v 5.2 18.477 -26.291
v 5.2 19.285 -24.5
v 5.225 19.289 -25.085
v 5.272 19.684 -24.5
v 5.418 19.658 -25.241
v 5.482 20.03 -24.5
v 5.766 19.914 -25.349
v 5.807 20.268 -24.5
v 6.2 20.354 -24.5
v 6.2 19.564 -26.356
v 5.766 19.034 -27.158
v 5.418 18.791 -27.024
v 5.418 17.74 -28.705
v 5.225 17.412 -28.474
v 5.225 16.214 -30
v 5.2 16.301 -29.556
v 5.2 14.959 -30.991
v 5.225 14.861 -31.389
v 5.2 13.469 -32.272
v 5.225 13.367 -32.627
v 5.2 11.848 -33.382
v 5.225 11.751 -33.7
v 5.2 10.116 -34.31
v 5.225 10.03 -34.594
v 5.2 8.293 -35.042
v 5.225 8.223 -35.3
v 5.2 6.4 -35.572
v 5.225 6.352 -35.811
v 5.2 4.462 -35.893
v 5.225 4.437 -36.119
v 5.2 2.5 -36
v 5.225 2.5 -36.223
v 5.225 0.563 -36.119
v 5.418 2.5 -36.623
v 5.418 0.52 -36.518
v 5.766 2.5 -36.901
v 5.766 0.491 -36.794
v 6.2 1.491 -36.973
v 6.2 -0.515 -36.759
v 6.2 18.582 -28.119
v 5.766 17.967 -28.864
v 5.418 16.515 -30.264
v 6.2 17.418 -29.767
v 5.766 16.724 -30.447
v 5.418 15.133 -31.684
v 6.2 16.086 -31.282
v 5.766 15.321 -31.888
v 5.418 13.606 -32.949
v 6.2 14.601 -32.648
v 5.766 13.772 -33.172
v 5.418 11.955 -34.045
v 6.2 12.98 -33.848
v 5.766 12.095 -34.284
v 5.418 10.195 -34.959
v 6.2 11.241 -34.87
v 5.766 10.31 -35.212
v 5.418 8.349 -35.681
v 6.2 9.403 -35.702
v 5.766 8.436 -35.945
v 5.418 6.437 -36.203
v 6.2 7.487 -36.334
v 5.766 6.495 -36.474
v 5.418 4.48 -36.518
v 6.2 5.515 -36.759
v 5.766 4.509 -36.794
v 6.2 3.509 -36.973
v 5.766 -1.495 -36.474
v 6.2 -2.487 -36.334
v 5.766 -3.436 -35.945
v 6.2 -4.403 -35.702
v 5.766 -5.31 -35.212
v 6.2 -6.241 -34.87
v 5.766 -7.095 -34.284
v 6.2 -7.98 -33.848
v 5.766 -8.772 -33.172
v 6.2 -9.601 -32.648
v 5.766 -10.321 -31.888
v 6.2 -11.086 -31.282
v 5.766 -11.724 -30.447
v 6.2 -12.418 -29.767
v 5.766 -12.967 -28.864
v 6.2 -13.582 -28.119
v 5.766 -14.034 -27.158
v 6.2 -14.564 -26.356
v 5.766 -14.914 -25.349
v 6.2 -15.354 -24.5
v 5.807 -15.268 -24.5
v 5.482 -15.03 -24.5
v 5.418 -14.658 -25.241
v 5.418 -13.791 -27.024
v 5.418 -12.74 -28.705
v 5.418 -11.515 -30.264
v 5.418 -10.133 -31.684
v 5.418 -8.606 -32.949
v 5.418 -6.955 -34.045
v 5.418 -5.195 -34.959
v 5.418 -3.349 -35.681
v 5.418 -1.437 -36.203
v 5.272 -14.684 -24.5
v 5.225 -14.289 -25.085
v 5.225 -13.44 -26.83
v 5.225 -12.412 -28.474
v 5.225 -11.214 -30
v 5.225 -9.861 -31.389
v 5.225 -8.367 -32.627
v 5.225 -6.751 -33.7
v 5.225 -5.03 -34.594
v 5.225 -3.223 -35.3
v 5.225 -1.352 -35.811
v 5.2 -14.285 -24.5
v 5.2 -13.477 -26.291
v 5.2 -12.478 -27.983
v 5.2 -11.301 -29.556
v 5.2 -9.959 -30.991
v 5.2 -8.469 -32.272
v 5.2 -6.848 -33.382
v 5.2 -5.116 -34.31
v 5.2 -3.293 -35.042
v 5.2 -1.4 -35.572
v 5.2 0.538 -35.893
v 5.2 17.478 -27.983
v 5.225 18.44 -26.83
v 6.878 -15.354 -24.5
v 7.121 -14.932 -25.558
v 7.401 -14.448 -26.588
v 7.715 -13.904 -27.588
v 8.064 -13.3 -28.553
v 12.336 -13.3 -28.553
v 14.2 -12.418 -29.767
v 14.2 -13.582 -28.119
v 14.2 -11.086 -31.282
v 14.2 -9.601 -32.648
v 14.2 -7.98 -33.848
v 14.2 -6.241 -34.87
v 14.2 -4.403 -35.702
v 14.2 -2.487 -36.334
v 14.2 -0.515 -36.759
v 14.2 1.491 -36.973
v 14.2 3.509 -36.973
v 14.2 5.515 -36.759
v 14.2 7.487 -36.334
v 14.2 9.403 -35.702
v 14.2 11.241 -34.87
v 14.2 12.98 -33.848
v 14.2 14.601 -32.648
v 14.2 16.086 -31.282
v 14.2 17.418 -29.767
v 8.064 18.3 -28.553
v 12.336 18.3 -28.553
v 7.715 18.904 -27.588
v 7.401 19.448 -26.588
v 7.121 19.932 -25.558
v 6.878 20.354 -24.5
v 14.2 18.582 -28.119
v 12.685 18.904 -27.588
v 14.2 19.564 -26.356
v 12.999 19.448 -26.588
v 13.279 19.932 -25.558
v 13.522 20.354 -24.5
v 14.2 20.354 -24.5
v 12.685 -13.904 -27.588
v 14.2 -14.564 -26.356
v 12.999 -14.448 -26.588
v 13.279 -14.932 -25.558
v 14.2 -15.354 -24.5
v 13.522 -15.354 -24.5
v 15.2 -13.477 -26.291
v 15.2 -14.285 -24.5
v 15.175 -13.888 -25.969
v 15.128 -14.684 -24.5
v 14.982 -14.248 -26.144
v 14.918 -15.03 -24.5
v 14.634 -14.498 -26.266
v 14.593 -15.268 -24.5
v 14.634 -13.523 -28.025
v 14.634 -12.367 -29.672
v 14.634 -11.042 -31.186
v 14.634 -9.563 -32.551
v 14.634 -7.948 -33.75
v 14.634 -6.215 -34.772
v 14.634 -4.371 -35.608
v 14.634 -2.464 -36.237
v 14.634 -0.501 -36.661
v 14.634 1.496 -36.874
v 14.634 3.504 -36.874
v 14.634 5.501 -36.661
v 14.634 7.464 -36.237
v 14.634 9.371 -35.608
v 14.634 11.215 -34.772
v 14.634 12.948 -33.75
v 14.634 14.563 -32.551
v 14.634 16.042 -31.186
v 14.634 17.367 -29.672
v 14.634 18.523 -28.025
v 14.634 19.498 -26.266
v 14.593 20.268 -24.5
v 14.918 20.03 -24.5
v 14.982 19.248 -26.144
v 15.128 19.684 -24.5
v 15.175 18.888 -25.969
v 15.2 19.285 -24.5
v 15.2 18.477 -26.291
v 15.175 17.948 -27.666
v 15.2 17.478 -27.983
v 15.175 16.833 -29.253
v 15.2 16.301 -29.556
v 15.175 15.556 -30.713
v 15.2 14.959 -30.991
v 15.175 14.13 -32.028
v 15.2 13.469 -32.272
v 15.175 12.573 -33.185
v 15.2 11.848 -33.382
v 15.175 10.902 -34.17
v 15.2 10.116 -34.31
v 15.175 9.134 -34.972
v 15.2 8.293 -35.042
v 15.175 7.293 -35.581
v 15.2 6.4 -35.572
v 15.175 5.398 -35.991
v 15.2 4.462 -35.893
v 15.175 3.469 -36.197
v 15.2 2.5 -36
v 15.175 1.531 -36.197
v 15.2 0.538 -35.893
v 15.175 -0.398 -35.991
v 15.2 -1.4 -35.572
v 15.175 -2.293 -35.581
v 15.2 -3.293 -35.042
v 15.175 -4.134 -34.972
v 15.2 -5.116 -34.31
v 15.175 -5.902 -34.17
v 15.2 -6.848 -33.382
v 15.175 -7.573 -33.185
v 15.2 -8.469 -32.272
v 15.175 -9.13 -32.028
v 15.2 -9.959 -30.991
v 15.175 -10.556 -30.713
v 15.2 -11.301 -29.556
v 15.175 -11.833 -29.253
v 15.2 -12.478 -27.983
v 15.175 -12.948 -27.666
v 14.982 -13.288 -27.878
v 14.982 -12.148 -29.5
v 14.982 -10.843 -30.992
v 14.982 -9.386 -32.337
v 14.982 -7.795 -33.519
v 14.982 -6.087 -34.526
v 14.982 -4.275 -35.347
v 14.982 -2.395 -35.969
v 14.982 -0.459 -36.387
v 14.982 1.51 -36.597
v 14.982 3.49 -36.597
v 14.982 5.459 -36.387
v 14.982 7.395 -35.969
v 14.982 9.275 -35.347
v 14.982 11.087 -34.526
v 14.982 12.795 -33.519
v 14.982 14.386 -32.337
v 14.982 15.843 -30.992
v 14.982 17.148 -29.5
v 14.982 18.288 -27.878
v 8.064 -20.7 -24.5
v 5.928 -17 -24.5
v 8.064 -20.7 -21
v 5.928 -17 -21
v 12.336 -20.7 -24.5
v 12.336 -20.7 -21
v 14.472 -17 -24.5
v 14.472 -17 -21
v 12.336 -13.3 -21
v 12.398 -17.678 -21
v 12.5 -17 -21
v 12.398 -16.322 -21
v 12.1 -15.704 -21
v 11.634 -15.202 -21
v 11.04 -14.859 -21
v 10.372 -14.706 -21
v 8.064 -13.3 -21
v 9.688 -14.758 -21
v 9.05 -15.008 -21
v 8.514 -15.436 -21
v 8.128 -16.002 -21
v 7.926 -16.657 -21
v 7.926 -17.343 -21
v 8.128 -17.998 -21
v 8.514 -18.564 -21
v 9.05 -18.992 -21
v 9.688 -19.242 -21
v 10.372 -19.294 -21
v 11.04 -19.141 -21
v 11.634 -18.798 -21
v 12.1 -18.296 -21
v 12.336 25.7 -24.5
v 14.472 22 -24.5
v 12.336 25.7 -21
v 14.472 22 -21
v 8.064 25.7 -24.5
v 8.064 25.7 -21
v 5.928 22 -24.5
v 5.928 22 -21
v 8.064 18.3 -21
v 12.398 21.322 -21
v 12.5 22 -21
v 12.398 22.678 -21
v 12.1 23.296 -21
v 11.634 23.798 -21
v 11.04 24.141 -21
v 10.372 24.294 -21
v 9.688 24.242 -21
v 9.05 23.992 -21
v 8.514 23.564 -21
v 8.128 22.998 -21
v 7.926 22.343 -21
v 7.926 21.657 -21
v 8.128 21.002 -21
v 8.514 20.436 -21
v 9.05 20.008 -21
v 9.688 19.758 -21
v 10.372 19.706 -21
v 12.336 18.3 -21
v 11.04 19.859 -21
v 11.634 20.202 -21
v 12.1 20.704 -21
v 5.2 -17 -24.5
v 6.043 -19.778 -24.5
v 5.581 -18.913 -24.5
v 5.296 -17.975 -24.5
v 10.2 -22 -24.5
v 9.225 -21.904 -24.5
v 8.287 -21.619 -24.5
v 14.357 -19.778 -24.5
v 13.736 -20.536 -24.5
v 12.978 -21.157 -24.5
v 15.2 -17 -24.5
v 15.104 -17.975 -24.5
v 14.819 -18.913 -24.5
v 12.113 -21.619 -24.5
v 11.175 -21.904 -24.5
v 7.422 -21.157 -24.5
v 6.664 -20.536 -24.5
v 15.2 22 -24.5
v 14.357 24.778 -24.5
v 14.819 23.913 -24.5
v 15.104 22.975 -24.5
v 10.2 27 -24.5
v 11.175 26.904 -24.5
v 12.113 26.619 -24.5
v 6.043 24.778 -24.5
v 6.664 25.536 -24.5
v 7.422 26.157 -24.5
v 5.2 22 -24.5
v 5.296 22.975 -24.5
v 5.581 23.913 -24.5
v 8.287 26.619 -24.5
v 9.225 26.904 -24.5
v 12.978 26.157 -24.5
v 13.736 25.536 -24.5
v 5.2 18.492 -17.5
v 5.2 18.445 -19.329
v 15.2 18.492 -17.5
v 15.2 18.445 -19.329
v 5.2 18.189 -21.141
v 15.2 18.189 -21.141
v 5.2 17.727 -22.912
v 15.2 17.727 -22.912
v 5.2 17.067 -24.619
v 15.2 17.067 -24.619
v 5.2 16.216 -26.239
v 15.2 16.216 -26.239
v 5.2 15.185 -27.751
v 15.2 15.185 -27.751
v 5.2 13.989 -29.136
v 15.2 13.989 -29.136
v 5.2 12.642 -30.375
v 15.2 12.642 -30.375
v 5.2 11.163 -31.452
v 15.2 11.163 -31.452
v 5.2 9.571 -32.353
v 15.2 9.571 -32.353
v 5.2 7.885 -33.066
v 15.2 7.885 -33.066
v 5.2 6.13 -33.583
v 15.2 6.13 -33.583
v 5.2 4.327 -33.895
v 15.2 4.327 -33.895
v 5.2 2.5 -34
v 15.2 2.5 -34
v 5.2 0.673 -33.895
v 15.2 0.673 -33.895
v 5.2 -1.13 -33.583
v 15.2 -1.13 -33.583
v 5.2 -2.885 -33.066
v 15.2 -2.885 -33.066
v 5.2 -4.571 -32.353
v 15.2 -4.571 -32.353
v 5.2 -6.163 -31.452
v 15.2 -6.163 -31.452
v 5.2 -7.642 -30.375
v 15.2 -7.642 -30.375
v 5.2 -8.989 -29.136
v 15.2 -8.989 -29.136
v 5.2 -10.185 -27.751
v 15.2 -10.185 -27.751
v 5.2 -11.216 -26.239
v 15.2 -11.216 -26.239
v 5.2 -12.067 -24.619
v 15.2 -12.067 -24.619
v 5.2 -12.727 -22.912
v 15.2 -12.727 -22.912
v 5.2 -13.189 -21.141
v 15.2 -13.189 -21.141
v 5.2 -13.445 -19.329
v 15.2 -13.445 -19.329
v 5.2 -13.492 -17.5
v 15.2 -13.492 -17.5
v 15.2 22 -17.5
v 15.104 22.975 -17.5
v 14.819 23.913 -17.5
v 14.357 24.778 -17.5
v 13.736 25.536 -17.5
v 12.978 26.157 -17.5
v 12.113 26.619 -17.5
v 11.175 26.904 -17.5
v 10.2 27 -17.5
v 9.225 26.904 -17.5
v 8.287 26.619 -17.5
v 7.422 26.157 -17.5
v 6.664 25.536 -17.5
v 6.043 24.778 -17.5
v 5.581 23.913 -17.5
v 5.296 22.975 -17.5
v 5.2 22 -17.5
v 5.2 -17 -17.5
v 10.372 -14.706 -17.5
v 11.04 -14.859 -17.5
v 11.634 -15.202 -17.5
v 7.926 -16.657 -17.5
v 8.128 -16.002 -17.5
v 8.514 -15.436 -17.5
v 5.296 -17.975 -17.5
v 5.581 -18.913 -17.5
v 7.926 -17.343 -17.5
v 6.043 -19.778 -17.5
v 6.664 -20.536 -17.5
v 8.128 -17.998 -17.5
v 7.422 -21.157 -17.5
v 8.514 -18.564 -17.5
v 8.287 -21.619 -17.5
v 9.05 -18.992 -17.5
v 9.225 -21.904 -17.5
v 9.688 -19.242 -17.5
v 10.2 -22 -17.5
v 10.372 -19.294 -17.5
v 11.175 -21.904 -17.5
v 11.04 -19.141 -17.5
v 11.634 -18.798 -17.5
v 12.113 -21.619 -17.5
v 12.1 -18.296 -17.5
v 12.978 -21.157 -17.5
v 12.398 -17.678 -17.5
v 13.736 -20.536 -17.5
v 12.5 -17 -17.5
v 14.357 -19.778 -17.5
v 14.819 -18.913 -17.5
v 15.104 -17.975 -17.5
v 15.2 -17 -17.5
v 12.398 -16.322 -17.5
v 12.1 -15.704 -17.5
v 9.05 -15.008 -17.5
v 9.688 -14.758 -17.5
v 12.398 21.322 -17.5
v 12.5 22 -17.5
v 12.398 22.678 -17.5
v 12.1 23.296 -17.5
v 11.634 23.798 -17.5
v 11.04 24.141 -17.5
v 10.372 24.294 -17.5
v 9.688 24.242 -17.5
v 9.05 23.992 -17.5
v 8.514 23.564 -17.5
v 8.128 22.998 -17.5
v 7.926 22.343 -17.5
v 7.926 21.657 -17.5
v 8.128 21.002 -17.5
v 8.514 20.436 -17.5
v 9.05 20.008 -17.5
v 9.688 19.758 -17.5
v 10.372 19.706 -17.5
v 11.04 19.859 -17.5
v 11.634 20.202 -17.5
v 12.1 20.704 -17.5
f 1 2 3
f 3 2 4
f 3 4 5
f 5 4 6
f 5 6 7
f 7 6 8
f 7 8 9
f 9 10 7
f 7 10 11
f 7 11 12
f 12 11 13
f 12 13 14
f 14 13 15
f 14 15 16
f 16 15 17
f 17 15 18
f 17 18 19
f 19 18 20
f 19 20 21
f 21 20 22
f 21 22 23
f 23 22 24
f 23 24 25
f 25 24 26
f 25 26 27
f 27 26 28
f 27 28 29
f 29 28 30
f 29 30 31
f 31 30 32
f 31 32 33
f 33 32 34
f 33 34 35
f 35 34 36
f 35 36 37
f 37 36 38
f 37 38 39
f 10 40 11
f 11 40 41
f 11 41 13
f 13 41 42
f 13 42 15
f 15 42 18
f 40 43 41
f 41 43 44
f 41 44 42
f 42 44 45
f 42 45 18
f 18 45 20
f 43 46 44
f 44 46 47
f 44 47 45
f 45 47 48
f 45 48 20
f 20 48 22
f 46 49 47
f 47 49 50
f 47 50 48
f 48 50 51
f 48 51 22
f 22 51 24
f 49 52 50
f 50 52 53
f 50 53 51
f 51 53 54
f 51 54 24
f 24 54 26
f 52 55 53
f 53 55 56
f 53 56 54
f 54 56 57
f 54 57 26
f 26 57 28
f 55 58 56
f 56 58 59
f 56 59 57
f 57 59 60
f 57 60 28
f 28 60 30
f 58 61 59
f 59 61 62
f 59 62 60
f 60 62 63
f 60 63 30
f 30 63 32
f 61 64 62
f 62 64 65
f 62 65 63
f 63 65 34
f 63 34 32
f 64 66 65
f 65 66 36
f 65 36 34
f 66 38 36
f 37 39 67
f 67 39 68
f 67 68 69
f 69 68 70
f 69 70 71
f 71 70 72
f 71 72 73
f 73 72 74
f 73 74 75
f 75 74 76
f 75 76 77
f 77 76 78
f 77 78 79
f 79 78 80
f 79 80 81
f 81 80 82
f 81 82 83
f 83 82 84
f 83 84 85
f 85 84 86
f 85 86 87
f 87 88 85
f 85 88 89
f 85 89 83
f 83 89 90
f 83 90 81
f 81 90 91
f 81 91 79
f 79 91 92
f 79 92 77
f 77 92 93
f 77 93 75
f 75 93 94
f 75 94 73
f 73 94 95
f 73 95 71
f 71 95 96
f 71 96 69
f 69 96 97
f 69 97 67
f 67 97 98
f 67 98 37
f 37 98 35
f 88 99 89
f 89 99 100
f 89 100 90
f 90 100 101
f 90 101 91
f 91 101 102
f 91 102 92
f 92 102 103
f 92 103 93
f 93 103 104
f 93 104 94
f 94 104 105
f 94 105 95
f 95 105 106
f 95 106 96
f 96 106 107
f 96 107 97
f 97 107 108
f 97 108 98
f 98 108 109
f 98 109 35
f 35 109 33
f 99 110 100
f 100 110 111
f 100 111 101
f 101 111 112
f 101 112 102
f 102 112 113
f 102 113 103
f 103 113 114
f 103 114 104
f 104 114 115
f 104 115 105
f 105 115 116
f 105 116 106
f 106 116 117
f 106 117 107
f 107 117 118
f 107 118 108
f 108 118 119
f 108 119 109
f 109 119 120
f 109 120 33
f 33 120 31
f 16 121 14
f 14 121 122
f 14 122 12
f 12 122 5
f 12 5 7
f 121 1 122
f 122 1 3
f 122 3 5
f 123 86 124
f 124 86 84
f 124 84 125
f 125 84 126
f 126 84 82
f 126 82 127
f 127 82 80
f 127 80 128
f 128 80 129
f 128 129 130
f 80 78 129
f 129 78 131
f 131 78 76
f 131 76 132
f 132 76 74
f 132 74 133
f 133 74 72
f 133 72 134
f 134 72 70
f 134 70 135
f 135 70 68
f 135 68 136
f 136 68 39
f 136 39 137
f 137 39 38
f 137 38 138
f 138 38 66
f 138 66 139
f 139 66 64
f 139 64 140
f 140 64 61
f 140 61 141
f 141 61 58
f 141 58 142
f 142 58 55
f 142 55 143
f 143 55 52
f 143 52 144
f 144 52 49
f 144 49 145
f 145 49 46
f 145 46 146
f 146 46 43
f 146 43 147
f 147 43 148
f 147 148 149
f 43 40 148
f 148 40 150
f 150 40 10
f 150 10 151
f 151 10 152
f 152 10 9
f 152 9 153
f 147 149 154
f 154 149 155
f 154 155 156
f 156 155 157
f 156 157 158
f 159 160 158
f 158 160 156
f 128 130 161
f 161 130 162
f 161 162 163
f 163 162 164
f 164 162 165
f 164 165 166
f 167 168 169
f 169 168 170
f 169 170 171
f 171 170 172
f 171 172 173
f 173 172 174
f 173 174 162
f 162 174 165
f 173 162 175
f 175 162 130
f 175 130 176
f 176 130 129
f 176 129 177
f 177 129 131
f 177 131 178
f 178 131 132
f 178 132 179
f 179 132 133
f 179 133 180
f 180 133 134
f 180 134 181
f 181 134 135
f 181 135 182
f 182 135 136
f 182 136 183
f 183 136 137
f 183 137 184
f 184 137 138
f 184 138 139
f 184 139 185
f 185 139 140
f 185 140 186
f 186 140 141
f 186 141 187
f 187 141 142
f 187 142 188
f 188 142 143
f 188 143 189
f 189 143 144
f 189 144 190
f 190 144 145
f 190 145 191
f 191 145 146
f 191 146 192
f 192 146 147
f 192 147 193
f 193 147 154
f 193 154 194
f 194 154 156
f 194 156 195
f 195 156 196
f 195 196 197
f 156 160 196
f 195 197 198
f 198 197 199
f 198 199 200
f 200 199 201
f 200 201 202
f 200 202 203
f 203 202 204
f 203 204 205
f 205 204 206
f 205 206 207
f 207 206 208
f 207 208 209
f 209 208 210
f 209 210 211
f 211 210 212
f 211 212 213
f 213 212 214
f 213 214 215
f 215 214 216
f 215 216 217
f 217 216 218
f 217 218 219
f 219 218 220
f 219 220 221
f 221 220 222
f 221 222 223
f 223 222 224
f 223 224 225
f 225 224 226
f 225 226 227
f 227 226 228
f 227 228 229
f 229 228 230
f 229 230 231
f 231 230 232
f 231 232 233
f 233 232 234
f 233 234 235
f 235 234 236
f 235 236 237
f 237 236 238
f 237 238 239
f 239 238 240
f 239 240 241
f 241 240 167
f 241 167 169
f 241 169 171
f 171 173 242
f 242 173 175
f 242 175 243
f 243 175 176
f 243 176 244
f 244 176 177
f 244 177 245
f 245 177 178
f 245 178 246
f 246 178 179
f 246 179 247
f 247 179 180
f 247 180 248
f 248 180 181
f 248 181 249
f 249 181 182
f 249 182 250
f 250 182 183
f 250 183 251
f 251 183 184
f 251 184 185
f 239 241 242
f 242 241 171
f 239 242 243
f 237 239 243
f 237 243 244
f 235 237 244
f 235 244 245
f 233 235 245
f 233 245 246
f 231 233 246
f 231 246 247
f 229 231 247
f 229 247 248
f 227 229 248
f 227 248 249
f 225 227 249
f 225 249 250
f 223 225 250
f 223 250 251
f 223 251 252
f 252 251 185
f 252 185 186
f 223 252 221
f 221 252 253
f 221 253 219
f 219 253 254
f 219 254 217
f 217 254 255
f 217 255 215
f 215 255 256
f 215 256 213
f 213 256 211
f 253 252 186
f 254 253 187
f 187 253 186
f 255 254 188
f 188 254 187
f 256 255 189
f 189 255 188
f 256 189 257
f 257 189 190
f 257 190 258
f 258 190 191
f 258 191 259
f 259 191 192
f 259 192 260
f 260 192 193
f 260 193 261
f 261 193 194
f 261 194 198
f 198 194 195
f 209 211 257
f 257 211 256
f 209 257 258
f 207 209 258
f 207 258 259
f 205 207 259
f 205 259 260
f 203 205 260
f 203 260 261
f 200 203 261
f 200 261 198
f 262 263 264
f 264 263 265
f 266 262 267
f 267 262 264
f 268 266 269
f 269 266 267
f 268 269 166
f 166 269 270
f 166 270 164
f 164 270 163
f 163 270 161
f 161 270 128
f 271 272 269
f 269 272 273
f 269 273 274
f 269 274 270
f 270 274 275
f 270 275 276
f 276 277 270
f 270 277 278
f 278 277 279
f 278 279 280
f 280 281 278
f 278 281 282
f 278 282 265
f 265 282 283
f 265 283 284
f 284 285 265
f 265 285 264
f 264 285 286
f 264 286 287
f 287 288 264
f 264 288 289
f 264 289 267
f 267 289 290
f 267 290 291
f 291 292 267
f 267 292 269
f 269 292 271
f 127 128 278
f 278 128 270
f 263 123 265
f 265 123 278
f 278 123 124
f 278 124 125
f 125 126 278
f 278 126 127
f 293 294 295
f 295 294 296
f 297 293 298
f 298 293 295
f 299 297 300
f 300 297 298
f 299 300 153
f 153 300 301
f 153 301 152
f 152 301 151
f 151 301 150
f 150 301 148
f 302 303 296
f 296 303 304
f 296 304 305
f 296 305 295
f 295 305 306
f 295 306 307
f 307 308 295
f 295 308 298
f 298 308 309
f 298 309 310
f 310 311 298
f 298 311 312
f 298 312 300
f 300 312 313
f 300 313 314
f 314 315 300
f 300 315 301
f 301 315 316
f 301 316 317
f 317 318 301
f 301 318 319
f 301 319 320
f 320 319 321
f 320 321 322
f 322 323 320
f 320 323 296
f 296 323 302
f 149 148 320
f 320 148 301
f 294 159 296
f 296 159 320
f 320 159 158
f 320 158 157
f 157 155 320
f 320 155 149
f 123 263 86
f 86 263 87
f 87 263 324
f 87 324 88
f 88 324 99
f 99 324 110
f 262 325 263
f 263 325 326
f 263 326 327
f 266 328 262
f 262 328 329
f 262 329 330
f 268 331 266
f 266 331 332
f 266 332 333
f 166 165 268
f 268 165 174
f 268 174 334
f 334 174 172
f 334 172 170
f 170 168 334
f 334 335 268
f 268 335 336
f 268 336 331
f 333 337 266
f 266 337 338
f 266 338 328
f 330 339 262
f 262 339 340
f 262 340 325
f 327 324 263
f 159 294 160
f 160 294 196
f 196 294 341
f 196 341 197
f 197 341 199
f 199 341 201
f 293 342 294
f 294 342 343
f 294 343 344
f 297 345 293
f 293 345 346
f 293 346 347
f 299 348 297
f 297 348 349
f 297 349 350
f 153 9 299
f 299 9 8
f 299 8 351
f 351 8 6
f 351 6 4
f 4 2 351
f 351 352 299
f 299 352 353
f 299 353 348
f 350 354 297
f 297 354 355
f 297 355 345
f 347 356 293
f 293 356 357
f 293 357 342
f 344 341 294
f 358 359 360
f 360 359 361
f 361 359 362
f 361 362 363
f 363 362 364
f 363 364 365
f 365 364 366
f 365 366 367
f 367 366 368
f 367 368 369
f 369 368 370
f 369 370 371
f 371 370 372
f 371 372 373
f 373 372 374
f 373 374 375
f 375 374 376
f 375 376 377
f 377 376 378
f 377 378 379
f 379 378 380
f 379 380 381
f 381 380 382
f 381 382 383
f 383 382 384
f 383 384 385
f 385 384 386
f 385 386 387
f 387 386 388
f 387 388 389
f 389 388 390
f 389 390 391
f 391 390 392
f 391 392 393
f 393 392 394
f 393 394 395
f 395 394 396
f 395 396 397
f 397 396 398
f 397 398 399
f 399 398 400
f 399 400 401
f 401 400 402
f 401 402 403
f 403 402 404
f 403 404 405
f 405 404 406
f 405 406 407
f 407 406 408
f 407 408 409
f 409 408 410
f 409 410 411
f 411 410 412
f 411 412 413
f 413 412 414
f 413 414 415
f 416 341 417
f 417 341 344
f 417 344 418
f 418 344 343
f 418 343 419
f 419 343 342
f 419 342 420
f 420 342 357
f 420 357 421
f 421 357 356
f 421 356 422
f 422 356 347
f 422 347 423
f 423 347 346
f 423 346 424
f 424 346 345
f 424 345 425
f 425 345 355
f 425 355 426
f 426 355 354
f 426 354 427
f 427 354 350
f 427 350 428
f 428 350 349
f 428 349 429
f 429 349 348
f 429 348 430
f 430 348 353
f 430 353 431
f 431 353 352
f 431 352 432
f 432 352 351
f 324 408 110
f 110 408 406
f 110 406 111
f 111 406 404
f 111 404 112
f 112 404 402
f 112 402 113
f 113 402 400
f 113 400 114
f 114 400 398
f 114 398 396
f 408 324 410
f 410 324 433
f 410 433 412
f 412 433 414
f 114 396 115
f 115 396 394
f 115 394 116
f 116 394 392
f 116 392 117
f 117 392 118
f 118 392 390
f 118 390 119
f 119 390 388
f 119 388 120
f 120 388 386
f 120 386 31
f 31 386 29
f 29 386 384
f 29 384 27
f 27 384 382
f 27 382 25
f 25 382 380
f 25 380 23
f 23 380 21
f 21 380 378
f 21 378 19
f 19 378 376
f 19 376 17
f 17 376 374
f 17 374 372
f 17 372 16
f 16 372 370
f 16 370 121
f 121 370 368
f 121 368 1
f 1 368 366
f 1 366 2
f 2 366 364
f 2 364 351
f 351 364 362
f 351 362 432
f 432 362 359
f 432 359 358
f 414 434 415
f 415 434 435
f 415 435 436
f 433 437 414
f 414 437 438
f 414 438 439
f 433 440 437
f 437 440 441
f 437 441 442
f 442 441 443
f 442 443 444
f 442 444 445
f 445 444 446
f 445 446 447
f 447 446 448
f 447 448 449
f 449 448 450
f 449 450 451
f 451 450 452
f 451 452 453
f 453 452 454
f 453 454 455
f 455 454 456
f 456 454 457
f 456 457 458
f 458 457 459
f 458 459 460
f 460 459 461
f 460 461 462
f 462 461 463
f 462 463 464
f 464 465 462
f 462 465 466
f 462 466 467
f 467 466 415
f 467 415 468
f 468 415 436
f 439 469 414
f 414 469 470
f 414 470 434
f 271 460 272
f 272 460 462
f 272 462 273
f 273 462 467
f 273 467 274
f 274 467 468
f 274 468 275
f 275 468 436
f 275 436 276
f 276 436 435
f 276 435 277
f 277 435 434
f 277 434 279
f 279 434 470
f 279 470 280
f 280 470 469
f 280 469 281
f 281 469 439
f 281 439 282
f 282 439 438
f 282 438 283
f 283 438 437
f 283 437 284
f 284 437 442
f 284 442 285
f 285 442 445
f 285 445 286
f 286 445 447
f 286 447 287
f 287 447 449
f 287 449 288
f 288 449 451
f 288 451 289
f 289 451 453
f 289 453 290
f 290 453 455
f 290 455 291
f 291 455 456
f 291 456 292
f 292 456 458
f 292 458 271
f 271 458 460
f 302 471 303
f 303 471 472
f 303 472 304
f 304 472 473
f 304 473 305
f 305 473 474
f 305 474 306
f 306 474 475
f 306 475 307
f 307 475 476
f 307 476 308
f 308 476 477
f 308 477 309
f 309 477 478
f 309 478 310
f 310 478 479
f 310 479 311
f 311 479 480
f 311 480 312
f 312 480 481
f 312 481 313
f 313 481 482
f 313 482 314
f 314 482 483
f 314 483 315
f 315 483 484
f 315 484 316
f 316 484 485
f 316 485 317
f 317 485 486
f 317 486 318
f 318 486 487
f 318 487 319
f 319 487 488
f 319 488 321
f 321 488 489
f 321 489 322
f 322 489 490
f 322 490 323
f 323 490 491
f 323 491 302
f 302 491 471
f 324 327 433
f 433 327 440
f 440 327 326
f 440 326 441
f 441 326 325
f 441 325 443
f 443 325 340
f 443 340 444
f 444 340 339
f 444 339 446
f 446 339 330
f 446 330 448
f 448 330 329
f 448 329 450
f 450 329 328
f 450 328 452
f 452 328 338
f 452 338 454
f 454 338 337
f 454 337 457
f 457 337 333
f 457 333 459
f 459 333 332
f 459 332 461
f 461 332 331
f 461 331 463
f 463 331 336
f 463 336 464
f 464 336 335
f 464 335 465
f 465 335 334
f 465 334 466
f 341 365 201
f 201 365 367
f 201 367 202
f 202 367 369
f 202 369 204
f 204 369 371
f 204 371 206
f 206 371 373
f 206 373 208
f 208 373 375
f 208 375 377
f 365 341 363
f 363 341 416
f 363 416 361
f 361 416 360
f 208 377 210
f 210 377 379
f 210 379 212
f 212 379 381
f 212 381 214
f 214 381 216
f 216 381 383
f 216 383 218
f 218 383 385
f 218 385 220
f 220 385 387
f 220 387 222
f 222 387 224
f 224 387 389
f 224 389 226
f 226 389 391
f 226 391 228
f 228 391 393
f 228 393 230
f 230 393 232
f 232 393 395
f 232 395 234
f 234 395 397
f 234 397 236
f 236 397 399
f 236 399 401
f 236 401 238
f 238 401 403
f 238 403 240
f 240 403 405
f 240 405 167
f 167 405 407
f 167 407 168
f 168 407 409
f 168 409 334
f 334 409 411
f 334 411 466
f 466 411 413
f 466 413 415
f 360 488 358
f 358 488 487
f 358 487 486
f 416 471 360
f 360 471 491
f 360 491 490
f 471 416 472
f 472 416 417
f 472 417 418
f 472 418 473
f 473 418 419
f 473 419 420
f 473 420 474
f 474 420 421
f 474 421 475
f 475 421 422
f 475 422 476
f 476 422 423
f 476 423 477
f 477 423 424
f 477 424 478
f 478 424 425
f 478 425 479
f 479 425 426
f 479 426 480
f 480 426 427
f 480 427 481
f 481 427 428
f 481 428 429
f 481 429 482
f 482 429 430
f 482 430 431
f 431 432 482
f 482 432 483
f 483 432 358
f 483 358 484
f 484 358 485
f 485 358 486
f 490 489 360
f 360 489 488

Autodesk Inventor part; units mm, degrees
ref_plane "YZ Plane" through (0, 0, 0) normal (1, 0, 0) x (0, 1, 0)
ref_plane "XZ Plane" through (0, 0, 0) normal (0, 1, 0) x (-1, 0, 0)
ref_plane "Arbeitsebene1" through (0, 0, -17.5) normal (0, 0, 1) x (1, 0, 0)
sketch "Skizze1" plane through (0, 0, -17.5) normal (0, 0, 1) x (1, 0, 0)
  arc A0 (5.2, -17) -> (15.2, -17) centre (10.2, -17) ccw
  circle A1 centre (10.2, -17) radius 2.3
  circle A2 centre (10.2, 22) radius 2.3
  arc A3 (15.2, 22) -> (5.2, 22) centre (10.2, 22) ccw
  line L0 (15.2, 22) -> (15.2, -17)
  line L1 (5.2, -17) -> (5.2, 22)
  point P0 (0, 0)
  dimension "d17" = 39
  dimension "d19" = 5
  dimension "d20" = 5
  dimension "d21" = 4.6
  dimension "d22" = 4.6
  dimension "d23" = 5.2
  dimension "d24" = 15.2
  dimension "d25" = 17
extrude "Extrusion1" add sketch "Skizze1" against normal blind 20
sketch "Skizze2" plane through (15.2, -17, -17.5) normal (1, 0, 0) x (0, 0, -1)
  circle A0 centre (0.5, 19.5) radius 16
  circle A1 centre (0.5, 19.5) radius 19
  line L0 (0, 44) -> (20, 44) projected
  line L1 (7, 44) -> (7, 37.3536)
  line L2 (7, 44) -> (4.49, 46.4189)
  line L3 (4.49, 46.4189) -> (-2.5421, 44.7897)
  line L4 (-2.5421, 44.7897) -> (-3.0105, 35.1101)
  line L5 (-3.09, 3.908) -> (-10.3297, -18.857)
  line L6 (-10.3297, -18.857) -> (9.5227, -24.4173)
  line L7 (9.5227, -24.4173) -> (7, -5)
  line L8 (0, -5) -> (20, -5) projected
  line L9 (7, -5) -> (7, 1.6464)
  line L10 (0, 0) -> (0, -5) projected
  line L11 (36.0228, 70.8555) -> (-22.3921, 70.8555)
  line L12 (-22.3921, 70.8555) -> (-22.3921, -28.3632)
  line L13 (-22.3921, -28.3632) -> (36.0228, -28.3632)
  line L14 (36.0228, -28.3632) -> (36.0228, 70.8555)
  point P0 (-17.5, 17)
  point P1 (-4.0018, 1.041)
  point P2 (-2.861, 38.2004)
  dimension "d5" = 3
  dimension "d6" = 7
  dimension "d26" = 49
  dimension "d27" = 24.5
  dimension "d28" = 32
  dimension "d29" = 18
extrude "Extrusion2" cut sketch "Skizze2" against normal blind 10 contours A0 | L14 L13 L12 L11
sketch "Skizze3" plane through (15.2, -17, -24.5) normal (0, 0, -1) x (-1, 0, 0)
  circle A0 centre (5, 39) radius 2.3 projected
  line L0 (2.8638, 35.3) -> (0.7276, 39)
  line L1 (0.7276, 39) -> (2.8638, 42.7)
  line L2 (2.8638, 42.7) -> (7.1362, 42.7)
  line L3 (7.1362, 42.7) -> (9.2724, 39)
  line L4 (9.2724, 39) -> (7.1362, 35.3)
  line L5 (7.1362, 35.3) -> (2.8638, 35.3)
  line L6 (0.7276, 0) -> (2.8638, 3.7)
  line L7 (2.8638, 3.7) -> (7.1362, 3.7)
  line L8 (7.1362, 3.7) -> (9.2724, 0)
  line L9 (9.2724, 0) -> (7.1362, -3.7)
  line L10 (7.1362, -3.7) -> (2.8638, -3.7)
  line L11 (2.8638, -3.7) -> (0.7276, 0)
  point P0 (15.2, 17)
  point P1 (5, 0)
  point P2 (5, 0)
  point P3 (5.6446, 34.7922)
  point P4 (4.3554, 34.7922)
  dimension "d9" = 7.4
  dimension "d10" = 7.4
extrude "Extrusion3" cut sketch "Skizze3" along normal blind 10 and the other way blind 3.5 contours A0 | L0 L1 L2 L3 L4 L5 | L6 L7 L8 L9 L10 L11
fillet "Rundung1" radius 1 2 edges at (15.2, 2.5, -37) (5.2, 2.5, -37)
equation "\"d20\" = d19"
equation "\"d27\" = 0.5 * d26"
equation "\"d10\" = d9"
properties part number "Schelle32"
